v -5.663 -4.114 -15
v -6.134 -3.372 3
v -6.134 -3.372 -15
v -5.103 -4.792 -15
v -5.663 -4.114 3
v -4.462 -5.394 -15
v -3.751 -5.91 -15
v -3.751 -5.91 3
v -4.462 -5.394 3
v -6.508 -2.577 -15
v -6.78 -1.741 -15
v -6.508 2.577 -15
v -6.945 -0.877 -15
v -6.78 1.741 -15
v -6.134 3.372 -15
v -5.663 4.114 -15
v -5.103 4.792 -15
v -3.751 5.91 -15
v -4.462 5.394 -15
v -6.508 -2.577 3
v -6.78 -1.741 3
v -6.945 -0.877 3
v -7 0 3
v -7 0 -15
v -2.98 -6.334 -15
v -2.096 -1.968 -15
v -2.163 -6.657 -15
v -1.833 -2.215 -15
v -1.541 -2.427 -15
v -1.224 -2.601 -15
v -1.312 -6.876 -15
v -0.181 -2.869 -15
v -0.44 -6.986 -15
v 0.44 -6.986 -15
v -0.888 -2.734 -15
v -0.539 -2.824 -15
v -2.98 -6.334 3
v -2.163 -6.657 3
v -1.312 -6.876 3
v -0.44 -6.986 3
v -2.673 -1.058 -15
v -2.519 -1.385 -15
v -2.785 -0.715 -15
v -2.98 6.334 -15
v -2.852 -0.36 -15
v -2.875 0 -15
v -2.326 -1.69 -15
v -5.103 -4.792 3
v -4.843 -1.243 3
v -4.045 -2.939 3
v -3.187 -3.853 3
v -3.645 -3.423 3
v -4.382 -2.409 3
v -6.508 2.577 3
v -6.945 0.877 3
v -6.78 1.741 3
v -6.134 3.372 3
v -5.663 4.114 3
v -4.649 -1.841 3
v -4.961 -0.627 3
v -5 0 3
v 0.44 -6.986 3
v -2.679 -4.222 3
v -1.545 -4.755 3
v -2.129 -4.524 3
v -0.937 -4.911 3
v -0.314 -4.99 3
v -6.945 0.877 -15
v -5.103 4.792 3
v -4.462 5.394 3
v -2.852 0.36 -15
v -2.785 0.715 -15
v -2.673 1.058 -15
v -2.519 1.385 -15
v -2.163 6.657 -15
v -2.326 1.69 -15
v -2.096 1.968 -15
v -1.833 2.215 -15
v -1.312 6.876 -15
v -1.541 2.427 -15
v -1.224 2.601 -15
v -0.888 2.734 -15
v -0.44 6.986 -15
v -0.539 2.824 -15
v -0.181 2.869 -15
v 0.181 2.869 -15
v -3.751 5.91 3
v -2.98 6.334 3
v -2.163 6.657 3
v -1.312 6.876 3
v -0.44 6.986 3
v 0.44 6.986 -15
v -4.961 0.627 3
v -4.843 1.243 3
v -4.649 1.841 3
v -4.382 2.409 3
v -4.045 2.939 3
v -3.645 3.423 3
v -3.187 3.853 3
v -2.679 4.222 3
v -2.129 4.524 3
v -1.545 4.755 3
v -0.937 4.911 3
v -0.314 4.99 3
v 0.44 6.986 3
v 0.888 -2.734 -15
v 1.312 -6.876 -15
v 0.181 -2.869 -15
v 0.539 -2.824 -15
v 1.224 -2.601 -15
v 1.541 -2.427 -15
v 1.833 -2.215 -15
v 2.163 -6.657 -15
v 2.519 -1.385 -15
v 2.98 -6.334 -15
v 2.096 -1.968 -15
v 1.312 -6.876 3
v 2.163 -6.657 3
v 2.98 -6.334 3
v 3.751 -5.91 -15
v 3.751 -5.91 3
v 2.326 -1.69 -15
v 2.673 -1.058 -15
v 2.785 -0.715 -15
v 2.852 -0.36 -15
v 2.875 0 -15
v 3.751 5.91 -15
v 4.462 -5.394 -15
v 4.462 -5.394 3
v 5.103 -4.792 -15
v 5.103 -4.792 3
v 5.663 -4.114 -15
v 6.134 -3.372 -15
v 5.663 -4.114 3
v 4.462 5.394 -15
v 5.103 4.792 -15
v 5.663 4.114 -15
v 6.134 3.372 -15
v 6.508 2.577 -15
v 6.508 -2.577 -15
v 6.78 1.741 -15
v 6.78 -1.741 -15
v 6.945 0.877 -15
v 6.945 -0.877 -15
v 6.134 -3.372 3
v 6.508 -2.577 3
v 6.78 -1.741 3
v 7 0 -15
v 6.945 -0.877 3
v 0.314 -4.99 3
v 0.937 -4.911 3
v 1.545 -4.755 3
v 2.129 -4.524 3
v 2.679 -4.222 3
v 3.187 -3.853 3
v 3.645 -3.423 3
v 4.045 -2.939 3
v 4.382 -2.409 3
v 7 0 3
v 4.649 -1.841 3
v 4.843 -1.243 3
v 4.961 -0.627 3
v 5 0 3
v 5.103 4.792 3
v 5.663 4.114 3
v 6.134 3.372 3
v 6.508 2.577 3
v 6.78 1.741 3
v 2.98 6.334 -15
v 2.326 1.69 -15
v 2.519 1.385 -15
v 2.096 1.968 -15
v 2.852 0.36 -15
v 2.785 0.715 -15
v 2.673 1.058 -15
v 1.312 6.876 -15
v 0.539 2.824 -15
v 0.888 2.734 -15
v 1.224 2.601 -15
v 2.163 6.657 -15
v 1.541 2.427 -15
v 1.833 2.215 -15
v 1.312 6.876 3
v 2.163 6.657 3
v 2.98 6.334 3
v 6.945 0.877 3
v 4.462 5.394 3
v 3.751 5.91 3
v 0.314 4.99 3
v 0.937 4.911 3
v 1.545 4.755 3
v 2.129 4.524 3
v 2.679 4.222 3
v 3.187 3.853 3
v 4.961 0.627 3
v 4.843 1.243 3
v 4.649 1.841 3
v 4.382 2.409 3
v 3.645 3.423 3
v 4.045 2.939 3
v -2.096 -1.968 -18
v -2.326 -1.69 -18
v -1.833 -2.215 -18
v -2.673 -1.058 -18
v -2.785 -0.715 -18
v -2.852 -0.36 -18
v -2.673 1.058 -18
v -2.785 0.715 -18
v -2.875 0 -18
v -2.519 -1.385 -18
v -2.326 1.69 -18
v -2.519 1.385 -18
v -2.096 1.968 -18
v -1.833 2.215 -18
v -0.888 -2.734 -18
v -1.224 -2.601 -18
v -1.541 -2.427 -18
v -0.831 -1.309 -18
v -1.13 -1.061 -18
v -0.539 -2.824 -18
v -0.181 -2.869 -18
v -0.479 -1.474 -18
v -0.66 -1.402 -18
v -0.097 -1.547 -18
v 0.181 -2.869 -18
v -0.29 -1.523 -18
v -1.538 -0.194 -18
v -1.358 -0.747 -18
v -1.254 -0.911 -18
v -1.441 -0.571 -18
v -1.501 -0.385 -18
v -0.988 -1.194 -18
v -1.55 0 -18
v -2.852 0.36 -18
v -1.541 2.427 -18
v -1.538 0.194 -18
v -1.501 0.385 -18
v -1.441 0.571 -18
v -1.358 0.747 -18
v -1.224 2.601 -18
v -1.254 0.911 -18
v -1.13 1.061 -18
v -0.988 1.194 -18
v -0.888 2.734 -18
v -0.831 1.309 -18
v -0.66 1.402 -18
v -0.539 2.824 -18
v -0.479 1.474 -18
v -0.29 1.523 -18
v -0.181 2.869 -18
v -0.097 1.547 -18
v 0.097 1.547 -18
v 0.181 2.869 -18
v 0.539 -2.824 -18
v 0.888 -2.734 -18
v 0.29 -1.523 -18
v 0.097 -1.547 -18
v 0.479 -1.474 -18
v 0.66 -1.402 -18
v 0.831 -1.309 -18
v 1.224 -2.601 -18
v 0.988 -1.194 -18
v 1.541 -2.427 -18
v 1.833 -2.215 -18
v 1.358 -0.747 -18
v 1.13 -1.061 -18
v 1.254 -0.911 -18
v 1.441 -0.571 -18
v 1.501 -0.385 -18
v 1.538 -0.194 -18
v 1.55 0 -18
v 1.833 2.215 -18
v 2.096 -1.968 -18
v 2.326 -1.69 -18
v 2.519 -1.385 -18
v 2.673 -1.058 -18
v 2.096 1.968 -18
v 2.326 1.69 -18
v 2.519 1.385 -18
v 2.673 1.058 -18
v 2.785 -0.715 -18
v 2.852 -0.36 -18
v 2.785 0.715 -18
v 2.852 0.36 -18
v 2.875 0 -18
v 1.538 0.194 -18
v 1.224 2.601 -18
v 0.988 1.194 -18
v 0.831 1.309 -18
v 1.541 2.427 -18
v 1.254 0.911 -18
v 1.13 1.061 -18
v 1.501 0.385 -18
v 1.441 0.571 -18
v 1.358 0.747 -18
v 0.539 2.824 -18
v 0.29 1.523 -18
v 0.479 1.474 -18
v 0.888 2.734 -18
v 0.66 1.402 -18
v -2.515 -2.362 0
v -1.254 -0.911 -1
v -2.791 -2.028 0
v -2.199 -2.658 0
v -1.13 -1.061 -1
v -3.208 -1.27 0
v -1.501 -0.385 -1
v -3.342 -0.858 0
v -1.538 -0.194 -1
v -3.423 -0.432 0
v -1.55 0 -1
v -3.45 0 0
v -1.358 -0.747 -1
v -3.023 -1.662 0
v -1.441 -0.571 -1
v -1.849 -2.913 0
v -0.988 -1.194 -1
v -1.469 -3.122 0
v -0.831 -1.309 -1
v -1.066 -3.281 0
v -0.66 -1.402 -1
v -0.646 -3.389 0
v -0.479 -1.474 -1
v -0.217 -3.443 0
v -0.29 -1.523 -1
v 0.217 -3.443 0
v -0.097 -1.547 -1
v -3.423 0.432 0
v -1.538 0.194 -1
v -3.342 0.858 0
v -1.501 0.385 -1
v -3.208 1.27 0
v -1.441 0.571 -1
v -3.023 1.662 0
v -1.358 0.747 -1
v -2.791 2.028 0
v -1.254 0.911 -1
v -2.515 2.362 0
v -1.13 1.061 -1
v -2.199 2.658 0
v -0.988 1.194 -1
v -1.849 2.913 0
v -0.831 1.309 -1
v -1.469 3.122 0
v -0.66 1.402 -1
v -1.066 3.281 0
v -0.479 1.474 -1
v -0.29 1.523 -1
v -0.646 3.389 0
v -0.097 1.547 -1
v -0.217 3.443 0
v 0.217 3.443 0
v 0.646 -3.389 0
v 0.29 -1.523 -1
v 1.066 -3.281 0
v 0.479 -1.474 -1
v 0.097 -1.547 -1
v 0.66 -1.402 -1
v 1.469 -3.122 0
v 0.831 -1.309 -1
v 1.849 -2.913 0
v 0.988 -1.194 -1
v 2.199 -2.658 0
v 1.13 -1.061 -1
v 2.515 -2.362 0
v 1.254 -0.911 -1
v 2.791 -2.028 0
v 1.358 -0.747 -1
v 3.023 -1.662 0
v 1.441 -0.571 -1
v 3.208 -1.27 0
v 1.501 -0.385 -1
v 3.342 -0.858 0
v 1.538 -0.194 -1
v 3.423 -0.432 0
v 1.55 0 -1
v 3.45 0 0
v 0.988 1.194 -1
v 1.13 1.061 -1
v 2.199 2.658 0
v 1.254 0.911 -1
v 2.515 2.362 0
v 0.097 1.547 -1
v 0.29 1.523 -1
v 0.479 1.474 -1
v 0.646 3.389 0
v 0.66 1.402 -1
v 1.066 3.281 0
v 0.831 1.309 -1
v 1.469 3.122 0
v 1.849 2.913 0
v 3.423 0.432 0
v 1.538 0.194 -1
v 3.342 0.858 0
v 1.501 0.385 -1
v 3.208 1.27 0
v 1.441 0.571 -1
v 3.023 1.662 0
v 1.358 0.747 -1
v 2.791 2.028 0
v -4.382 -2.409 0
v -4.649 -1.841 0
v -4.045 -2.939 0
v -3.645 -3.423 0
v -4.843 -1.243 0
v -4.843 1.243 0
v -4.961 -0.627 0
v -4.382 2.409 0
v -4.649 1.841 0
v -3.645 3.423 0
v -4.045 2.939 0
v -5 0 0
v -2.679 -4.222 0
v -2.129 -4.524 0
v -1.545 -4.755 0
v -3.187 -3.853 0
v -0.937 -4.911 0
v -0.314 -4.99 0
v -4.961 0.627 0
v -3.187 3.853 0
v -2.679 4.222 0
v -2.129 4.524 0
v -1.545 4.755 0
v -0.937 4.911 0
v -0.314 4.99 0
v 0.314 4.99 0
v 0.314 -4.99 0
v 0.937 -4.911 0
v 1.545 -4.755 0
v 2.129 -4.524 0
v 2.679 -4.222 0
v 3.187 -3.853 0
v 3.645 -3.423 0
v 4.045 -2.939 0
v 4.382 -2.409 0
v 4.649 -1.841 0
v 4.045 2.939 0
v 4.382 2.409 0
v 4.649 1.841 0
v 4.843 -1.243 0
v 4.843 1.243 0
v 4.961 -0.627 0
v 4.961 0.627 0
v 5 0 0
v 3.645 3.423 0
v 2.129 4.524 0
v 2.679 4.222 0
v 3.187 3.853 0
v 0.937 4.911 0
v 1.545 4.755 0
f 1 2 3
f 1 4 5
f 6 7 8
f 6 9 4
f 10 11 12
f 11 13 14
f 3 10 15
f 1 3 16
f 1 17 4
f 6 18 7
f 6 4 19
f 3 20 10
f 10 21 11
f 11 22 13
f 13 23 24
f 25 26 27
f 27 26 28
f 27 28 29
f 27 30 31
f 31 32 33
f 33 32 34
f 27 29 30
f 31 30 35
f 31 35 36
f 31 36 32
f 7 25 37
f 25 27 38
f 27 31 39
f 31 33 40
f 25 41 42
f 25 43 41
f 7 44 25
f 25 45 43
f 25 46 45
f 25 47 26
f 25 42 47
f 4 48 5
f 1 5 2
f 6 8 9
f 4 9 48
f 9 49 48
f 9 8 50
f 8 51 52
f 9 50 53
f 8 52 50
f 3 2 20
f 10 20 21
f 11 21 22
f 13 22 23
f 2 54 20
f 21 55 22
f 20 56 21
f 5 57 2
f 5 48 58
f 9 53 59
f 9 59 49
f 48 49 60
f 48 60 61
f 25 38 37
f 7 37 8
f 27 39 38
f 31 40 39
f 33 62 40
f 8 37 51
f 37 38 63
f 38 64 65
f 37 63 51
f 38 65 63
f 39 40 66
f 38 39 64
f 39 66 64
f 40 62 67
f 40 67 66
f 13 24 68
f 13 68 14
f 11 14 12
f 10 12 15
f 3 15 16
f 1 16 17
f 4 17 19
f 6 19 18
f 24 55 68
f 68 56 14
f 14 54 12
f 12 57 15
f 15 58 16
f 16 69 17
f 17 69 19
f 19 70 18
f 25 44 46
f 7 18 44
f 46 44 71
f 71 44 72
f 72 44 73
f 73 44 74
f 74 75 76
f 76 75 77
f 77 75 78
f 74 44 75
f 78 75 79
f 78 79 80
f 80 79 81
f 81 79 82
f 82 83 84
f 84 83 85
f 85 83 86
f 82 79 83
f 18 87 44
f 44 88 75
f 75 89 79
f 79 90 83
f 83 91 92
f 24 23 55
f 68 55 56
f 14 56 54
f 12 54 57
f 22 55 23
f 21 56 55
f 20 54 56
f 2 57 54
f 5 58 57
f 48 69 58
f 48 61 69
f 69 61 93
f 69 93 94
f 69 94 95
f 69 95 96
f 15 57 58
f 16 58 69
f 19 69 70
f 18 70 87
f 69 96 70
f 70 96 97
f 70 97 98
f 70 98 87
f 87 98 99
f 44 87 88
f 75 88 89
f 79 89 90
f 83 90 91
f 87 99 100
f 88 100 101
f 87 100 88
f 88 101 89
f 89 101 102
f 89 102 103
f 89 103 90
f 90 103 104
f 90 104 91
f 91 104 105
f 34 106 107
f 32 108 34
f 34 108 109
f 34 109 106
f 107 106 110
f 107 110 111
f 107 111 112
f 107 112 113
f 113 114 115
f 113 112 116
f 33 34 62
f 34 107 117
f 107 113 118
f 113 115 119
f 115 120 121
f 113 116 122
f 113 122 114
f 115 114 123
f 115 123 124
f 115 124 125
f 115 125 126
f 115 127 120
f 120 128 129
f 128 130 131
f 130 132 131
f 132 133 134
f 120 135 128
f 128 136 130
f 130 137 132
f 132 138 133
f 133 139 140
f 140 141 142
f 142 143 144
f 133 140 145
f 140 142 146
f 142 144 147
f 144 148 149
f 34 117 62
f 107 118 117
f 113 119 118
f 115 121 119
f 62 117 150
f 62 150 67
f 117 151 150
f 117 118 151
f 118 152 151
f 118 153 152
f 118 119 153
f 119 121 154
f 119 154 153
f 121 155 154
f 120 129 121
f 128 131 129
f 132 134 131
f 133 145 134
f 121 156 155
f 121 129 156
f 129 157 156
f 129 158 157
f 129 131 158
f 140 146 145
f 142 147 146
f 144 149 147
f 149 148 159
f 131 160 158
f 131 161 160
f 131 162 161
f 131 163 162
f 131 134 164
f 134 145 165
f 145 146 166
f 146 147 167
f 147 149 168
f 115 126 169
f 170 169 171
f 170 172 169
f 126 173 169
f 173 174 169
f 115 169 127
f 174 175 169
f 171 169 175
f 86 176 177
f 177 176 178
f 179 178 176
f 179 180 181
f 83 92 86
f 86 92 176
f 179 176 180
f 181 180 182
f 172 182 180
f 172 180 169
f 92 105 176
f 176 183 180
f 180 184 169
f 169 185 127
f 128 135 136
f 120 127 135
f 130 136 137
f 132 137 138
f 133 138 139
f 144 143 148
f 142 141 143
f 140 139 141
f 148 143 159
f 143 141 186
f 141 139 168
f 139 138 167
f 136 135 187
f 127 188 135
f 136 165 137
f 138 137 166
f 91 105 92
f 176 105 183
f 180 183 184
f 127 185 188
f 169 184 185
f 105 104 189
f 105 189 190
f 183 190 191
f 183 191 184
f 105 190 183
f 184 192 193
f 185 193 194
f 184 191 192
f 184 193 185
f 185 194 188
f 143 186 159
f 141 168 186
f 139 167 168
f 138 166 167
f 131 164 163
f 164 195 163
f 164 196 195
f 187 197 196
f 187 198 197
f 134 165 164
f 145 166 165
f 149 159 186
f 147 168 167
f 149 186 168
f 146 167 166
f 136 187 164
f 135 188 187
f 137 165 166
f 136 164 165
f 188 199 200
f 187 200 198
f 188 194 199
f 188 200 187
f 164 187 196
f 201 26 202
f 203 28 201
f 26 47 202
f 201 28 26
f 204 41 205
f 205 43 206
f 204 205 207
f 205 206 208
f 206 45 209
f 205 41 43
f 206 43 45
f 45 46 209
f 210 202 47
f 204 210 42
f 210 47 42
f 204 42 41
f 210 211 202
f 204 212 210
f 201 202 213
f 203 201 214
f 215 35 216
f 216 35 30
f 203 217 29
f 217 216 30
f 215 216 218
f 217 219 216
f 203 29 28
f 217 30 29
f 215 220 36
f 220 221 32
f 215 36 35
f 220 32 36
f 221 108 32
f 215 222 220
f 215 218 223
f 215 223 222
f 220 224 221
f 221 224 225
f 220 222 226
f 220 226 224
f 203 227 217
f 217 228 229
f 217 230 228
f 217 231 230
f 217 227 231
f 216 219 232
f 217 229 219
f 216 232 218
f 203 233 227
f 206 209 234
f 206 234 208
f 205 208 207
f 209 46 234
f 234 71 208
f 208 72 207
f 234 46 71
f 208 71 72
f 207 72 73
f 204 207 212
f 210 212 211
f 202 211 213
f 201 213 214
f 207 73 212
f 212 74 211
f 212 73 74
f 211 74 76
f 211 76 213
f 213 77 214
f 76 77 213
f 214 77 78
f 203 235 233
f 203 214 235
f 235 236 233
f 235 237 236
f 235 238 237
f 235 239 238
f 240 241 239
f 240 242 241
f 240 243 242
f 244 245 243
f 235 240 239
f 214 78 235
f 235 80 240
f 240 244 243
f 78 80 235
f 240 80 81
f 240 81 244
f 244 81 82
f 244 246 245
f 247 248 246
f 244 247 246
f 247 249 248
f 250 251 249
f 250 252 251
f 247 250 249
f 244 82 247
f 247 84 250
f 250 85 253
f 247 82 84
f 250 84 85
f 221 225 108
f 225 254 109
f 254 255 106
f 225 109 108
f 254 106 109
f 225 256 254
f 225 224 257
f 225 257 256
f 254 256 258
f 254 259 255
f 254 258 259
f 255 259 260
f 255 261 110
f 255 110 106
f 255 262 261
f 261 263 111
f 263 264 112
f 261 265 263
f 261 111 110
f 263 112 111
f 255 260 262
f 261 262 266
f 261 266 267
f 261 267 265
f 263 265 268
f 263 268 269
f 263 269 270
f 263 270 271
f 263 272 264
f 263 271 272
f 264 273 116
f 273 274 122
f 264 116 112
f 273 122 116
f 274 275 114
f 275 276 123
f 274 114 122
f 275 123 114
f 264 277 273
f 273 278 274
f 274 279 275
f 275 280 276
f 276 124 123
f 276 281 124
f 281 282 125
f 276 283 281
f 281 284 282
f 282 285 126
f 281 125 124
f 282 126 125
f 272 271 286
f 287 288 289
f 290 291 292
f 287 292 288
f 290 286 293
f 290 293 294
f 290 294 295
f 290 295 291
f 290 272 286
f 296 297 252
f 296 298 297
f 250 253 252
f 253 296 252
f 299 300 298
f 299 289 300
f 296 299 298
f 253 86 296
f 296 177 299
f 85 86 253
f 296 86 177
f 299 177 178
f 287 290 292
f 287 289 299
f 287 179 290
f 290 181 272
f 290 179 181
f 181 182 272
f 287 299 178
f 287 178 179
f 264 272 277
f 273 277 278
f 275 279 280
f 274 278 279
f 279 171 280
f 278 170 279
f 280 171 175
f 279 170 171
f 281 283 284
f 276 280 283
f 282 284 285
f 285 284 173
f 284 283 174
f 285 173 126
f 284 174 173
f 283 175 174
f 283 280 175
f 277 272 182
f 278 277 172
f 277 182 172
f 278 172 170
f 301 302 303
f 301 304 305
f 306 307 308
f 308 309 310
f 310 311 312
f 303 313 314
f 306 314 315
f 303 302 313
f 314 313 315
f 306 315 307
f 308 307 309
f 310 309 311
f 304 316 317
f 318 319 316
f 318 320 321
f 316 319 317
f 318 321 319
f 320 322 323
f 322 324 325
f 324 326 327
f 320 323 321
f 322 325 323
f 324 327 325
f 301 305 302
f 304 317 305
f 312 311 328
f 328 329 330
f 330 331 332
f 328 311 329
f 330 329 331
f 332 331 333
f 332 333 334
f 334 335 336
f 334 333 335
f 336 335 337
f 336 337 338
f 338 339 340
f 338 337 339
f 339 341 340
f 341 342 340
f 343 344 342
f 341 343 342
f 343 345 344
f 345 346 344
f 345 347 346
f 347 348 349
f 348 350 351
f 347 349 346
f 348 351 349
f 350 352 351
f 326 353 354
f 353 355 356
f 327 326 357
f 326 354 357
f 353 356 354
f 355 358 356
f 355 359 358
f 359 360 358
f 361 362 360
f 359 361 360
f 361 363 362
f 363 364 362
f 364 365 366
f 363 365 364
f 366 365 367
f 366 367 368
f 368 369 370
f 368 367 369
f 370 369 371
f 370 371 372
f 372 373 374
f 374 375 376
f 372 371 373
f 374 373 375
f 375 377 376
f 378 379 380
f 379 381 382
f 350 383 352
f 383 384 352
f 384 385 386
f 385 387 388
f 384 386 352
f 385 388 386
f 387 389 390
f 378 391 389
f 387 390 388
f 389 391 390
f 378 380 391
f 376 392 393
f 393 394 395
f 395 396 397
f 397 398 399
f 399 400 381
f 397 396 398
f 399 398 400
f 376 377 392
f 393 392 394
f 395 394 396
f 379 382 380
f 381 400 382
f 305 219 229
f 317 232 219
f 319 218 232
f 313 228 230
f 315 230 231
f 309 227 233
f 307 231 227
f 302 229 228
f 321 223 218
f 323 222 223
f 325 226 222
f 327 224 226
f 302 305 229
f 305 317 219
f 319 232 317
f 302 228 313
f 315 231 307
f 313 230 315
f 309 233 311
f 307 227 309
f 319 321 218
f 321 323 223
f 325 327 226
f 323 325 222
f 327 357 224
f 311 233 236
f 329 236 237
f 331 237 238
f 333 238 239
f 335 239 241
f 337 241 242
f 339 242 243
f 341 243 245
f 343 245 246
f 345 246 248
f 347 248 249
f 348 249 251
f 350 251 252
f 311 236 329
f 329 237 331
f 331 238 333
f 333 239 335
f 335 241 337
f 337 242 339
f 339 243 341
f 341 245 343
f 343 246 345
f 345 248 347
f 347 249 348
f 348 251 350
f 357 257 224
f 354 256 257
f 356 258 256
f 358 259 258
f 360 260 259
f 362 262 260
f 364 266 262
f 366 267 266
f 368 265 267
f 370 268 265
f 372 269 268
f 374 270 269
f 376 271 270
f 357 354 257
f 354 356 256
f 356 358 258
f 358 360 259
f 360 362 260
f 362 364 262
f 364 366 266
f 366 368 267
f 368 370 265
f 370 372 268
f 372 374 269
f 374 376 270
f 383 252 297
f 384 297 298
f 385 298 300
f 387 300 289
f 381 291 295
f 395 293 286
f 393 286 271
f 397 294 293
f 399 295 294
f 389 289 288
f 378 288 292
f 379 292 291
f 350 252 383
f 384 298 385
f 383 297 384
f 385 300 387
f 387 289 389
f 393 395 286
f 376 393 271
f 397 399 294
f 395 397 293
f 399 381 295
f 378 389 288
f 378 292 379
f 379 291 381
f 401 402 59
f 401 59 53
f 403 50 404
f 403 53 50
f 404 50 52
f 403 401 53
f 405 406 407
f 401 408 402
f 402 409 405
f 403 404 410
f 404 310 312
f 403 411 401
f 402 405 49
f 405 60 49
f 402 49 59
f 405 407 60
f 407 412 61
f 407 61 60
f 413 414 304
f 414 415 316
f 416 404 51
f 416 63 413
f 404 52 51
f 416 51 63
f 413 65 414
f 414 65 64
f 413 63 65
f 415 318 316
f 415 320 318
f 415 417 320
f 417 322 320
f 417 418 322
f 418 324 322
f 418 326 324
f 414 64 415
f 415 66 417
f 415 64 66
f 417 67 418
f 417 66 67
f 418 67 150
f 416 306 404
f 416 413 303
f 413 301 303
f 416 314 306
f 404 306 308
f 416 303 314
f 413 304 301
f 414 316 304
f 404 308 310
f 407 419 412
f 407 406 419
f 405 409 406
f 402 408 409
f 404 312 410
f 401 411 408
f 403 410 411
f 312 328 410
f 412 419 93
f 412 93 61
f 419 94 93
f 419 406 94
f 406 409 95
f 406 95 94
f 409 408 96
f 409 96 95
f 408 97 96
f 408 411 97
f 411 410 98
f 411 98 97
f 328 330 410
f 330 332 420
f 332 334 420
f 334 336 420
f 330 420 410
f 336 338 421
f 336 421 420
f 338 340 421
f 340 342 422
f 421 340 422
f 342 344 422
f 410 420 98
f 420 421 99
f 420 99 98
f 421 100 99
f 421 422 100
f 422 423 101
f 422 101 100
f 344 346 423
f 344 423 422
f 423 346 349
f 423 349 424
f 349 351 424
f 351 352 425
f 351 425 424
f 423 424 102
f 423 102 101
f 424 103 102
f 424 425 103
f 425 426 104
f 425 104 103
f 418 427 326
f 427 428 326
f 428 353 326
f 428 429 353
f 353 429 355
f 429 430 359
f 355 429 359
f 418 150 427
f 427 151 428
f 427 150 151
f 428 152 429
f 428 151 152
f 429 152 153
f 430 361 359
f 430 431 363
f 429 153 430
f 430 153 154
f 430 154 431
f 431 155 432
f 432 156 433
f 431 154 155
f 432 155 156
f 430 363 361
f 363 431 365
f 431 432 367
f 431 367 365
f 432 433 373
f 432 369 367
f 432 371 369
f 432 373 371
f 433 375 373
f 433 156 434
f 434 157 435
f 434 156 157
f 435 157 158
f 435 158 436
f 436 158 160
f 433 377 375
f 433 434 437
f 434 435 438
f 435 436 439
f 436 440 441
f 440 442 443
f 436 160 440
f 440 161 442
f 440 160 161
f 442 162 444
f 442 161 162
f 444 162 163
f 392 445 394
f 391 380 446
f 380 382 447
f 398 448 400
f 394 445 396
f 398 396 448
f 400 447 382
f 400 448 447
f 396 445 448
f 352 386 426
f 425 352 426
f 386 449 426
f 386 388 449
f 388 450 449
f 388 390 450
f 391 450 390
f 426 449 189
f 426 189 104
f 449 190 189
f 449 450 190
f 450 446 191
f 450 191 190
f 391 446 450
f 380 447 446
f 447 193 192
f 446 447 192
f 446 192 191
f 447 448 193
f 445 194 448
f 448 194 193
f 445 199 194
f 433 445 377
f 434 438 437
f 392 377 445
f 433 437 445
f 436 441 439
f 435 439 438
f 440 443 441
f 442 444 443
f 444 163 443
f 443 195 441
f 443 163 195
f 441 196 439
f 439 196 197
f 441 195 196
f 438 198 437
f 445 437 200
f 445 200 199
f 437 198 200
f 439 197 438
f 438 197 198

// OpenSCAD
$fn = 50;

difference() {
	union() {
		translate(v = [0, 0, -15.0]) {
			cylinder(h = 18, r = 7.0);
		}
		#translate(v = [0, 0, -18.0]) {
			cylinder(h = 18, r = 2.875);
		}
	}
	union() {
		translate(v = [0, 0, 0]) {
			rotate(a = [0, 0, 0]) {
				difference() {
					union() {
						translate(v = [0, 0, -18.0]) {
							cylinder(h = 18, r = 1.25);
						}
						translate(v = [0, 0, -1.0]) {
							cylinder(h = 1.0, r1 = 1.55, r2 = 3.45);
						}
						translate(v = [0, 0, -18.0]) {
							cylinder(h = 18, r = 1.55);
						}
						translate(v = [0, 0, -18.0]) {
							cylinder(h = 18, r = 1.25);
						}
					}
					union();
				}
			}
		}
		#cylinder(h = 3, r = 5.0);
	}
}
